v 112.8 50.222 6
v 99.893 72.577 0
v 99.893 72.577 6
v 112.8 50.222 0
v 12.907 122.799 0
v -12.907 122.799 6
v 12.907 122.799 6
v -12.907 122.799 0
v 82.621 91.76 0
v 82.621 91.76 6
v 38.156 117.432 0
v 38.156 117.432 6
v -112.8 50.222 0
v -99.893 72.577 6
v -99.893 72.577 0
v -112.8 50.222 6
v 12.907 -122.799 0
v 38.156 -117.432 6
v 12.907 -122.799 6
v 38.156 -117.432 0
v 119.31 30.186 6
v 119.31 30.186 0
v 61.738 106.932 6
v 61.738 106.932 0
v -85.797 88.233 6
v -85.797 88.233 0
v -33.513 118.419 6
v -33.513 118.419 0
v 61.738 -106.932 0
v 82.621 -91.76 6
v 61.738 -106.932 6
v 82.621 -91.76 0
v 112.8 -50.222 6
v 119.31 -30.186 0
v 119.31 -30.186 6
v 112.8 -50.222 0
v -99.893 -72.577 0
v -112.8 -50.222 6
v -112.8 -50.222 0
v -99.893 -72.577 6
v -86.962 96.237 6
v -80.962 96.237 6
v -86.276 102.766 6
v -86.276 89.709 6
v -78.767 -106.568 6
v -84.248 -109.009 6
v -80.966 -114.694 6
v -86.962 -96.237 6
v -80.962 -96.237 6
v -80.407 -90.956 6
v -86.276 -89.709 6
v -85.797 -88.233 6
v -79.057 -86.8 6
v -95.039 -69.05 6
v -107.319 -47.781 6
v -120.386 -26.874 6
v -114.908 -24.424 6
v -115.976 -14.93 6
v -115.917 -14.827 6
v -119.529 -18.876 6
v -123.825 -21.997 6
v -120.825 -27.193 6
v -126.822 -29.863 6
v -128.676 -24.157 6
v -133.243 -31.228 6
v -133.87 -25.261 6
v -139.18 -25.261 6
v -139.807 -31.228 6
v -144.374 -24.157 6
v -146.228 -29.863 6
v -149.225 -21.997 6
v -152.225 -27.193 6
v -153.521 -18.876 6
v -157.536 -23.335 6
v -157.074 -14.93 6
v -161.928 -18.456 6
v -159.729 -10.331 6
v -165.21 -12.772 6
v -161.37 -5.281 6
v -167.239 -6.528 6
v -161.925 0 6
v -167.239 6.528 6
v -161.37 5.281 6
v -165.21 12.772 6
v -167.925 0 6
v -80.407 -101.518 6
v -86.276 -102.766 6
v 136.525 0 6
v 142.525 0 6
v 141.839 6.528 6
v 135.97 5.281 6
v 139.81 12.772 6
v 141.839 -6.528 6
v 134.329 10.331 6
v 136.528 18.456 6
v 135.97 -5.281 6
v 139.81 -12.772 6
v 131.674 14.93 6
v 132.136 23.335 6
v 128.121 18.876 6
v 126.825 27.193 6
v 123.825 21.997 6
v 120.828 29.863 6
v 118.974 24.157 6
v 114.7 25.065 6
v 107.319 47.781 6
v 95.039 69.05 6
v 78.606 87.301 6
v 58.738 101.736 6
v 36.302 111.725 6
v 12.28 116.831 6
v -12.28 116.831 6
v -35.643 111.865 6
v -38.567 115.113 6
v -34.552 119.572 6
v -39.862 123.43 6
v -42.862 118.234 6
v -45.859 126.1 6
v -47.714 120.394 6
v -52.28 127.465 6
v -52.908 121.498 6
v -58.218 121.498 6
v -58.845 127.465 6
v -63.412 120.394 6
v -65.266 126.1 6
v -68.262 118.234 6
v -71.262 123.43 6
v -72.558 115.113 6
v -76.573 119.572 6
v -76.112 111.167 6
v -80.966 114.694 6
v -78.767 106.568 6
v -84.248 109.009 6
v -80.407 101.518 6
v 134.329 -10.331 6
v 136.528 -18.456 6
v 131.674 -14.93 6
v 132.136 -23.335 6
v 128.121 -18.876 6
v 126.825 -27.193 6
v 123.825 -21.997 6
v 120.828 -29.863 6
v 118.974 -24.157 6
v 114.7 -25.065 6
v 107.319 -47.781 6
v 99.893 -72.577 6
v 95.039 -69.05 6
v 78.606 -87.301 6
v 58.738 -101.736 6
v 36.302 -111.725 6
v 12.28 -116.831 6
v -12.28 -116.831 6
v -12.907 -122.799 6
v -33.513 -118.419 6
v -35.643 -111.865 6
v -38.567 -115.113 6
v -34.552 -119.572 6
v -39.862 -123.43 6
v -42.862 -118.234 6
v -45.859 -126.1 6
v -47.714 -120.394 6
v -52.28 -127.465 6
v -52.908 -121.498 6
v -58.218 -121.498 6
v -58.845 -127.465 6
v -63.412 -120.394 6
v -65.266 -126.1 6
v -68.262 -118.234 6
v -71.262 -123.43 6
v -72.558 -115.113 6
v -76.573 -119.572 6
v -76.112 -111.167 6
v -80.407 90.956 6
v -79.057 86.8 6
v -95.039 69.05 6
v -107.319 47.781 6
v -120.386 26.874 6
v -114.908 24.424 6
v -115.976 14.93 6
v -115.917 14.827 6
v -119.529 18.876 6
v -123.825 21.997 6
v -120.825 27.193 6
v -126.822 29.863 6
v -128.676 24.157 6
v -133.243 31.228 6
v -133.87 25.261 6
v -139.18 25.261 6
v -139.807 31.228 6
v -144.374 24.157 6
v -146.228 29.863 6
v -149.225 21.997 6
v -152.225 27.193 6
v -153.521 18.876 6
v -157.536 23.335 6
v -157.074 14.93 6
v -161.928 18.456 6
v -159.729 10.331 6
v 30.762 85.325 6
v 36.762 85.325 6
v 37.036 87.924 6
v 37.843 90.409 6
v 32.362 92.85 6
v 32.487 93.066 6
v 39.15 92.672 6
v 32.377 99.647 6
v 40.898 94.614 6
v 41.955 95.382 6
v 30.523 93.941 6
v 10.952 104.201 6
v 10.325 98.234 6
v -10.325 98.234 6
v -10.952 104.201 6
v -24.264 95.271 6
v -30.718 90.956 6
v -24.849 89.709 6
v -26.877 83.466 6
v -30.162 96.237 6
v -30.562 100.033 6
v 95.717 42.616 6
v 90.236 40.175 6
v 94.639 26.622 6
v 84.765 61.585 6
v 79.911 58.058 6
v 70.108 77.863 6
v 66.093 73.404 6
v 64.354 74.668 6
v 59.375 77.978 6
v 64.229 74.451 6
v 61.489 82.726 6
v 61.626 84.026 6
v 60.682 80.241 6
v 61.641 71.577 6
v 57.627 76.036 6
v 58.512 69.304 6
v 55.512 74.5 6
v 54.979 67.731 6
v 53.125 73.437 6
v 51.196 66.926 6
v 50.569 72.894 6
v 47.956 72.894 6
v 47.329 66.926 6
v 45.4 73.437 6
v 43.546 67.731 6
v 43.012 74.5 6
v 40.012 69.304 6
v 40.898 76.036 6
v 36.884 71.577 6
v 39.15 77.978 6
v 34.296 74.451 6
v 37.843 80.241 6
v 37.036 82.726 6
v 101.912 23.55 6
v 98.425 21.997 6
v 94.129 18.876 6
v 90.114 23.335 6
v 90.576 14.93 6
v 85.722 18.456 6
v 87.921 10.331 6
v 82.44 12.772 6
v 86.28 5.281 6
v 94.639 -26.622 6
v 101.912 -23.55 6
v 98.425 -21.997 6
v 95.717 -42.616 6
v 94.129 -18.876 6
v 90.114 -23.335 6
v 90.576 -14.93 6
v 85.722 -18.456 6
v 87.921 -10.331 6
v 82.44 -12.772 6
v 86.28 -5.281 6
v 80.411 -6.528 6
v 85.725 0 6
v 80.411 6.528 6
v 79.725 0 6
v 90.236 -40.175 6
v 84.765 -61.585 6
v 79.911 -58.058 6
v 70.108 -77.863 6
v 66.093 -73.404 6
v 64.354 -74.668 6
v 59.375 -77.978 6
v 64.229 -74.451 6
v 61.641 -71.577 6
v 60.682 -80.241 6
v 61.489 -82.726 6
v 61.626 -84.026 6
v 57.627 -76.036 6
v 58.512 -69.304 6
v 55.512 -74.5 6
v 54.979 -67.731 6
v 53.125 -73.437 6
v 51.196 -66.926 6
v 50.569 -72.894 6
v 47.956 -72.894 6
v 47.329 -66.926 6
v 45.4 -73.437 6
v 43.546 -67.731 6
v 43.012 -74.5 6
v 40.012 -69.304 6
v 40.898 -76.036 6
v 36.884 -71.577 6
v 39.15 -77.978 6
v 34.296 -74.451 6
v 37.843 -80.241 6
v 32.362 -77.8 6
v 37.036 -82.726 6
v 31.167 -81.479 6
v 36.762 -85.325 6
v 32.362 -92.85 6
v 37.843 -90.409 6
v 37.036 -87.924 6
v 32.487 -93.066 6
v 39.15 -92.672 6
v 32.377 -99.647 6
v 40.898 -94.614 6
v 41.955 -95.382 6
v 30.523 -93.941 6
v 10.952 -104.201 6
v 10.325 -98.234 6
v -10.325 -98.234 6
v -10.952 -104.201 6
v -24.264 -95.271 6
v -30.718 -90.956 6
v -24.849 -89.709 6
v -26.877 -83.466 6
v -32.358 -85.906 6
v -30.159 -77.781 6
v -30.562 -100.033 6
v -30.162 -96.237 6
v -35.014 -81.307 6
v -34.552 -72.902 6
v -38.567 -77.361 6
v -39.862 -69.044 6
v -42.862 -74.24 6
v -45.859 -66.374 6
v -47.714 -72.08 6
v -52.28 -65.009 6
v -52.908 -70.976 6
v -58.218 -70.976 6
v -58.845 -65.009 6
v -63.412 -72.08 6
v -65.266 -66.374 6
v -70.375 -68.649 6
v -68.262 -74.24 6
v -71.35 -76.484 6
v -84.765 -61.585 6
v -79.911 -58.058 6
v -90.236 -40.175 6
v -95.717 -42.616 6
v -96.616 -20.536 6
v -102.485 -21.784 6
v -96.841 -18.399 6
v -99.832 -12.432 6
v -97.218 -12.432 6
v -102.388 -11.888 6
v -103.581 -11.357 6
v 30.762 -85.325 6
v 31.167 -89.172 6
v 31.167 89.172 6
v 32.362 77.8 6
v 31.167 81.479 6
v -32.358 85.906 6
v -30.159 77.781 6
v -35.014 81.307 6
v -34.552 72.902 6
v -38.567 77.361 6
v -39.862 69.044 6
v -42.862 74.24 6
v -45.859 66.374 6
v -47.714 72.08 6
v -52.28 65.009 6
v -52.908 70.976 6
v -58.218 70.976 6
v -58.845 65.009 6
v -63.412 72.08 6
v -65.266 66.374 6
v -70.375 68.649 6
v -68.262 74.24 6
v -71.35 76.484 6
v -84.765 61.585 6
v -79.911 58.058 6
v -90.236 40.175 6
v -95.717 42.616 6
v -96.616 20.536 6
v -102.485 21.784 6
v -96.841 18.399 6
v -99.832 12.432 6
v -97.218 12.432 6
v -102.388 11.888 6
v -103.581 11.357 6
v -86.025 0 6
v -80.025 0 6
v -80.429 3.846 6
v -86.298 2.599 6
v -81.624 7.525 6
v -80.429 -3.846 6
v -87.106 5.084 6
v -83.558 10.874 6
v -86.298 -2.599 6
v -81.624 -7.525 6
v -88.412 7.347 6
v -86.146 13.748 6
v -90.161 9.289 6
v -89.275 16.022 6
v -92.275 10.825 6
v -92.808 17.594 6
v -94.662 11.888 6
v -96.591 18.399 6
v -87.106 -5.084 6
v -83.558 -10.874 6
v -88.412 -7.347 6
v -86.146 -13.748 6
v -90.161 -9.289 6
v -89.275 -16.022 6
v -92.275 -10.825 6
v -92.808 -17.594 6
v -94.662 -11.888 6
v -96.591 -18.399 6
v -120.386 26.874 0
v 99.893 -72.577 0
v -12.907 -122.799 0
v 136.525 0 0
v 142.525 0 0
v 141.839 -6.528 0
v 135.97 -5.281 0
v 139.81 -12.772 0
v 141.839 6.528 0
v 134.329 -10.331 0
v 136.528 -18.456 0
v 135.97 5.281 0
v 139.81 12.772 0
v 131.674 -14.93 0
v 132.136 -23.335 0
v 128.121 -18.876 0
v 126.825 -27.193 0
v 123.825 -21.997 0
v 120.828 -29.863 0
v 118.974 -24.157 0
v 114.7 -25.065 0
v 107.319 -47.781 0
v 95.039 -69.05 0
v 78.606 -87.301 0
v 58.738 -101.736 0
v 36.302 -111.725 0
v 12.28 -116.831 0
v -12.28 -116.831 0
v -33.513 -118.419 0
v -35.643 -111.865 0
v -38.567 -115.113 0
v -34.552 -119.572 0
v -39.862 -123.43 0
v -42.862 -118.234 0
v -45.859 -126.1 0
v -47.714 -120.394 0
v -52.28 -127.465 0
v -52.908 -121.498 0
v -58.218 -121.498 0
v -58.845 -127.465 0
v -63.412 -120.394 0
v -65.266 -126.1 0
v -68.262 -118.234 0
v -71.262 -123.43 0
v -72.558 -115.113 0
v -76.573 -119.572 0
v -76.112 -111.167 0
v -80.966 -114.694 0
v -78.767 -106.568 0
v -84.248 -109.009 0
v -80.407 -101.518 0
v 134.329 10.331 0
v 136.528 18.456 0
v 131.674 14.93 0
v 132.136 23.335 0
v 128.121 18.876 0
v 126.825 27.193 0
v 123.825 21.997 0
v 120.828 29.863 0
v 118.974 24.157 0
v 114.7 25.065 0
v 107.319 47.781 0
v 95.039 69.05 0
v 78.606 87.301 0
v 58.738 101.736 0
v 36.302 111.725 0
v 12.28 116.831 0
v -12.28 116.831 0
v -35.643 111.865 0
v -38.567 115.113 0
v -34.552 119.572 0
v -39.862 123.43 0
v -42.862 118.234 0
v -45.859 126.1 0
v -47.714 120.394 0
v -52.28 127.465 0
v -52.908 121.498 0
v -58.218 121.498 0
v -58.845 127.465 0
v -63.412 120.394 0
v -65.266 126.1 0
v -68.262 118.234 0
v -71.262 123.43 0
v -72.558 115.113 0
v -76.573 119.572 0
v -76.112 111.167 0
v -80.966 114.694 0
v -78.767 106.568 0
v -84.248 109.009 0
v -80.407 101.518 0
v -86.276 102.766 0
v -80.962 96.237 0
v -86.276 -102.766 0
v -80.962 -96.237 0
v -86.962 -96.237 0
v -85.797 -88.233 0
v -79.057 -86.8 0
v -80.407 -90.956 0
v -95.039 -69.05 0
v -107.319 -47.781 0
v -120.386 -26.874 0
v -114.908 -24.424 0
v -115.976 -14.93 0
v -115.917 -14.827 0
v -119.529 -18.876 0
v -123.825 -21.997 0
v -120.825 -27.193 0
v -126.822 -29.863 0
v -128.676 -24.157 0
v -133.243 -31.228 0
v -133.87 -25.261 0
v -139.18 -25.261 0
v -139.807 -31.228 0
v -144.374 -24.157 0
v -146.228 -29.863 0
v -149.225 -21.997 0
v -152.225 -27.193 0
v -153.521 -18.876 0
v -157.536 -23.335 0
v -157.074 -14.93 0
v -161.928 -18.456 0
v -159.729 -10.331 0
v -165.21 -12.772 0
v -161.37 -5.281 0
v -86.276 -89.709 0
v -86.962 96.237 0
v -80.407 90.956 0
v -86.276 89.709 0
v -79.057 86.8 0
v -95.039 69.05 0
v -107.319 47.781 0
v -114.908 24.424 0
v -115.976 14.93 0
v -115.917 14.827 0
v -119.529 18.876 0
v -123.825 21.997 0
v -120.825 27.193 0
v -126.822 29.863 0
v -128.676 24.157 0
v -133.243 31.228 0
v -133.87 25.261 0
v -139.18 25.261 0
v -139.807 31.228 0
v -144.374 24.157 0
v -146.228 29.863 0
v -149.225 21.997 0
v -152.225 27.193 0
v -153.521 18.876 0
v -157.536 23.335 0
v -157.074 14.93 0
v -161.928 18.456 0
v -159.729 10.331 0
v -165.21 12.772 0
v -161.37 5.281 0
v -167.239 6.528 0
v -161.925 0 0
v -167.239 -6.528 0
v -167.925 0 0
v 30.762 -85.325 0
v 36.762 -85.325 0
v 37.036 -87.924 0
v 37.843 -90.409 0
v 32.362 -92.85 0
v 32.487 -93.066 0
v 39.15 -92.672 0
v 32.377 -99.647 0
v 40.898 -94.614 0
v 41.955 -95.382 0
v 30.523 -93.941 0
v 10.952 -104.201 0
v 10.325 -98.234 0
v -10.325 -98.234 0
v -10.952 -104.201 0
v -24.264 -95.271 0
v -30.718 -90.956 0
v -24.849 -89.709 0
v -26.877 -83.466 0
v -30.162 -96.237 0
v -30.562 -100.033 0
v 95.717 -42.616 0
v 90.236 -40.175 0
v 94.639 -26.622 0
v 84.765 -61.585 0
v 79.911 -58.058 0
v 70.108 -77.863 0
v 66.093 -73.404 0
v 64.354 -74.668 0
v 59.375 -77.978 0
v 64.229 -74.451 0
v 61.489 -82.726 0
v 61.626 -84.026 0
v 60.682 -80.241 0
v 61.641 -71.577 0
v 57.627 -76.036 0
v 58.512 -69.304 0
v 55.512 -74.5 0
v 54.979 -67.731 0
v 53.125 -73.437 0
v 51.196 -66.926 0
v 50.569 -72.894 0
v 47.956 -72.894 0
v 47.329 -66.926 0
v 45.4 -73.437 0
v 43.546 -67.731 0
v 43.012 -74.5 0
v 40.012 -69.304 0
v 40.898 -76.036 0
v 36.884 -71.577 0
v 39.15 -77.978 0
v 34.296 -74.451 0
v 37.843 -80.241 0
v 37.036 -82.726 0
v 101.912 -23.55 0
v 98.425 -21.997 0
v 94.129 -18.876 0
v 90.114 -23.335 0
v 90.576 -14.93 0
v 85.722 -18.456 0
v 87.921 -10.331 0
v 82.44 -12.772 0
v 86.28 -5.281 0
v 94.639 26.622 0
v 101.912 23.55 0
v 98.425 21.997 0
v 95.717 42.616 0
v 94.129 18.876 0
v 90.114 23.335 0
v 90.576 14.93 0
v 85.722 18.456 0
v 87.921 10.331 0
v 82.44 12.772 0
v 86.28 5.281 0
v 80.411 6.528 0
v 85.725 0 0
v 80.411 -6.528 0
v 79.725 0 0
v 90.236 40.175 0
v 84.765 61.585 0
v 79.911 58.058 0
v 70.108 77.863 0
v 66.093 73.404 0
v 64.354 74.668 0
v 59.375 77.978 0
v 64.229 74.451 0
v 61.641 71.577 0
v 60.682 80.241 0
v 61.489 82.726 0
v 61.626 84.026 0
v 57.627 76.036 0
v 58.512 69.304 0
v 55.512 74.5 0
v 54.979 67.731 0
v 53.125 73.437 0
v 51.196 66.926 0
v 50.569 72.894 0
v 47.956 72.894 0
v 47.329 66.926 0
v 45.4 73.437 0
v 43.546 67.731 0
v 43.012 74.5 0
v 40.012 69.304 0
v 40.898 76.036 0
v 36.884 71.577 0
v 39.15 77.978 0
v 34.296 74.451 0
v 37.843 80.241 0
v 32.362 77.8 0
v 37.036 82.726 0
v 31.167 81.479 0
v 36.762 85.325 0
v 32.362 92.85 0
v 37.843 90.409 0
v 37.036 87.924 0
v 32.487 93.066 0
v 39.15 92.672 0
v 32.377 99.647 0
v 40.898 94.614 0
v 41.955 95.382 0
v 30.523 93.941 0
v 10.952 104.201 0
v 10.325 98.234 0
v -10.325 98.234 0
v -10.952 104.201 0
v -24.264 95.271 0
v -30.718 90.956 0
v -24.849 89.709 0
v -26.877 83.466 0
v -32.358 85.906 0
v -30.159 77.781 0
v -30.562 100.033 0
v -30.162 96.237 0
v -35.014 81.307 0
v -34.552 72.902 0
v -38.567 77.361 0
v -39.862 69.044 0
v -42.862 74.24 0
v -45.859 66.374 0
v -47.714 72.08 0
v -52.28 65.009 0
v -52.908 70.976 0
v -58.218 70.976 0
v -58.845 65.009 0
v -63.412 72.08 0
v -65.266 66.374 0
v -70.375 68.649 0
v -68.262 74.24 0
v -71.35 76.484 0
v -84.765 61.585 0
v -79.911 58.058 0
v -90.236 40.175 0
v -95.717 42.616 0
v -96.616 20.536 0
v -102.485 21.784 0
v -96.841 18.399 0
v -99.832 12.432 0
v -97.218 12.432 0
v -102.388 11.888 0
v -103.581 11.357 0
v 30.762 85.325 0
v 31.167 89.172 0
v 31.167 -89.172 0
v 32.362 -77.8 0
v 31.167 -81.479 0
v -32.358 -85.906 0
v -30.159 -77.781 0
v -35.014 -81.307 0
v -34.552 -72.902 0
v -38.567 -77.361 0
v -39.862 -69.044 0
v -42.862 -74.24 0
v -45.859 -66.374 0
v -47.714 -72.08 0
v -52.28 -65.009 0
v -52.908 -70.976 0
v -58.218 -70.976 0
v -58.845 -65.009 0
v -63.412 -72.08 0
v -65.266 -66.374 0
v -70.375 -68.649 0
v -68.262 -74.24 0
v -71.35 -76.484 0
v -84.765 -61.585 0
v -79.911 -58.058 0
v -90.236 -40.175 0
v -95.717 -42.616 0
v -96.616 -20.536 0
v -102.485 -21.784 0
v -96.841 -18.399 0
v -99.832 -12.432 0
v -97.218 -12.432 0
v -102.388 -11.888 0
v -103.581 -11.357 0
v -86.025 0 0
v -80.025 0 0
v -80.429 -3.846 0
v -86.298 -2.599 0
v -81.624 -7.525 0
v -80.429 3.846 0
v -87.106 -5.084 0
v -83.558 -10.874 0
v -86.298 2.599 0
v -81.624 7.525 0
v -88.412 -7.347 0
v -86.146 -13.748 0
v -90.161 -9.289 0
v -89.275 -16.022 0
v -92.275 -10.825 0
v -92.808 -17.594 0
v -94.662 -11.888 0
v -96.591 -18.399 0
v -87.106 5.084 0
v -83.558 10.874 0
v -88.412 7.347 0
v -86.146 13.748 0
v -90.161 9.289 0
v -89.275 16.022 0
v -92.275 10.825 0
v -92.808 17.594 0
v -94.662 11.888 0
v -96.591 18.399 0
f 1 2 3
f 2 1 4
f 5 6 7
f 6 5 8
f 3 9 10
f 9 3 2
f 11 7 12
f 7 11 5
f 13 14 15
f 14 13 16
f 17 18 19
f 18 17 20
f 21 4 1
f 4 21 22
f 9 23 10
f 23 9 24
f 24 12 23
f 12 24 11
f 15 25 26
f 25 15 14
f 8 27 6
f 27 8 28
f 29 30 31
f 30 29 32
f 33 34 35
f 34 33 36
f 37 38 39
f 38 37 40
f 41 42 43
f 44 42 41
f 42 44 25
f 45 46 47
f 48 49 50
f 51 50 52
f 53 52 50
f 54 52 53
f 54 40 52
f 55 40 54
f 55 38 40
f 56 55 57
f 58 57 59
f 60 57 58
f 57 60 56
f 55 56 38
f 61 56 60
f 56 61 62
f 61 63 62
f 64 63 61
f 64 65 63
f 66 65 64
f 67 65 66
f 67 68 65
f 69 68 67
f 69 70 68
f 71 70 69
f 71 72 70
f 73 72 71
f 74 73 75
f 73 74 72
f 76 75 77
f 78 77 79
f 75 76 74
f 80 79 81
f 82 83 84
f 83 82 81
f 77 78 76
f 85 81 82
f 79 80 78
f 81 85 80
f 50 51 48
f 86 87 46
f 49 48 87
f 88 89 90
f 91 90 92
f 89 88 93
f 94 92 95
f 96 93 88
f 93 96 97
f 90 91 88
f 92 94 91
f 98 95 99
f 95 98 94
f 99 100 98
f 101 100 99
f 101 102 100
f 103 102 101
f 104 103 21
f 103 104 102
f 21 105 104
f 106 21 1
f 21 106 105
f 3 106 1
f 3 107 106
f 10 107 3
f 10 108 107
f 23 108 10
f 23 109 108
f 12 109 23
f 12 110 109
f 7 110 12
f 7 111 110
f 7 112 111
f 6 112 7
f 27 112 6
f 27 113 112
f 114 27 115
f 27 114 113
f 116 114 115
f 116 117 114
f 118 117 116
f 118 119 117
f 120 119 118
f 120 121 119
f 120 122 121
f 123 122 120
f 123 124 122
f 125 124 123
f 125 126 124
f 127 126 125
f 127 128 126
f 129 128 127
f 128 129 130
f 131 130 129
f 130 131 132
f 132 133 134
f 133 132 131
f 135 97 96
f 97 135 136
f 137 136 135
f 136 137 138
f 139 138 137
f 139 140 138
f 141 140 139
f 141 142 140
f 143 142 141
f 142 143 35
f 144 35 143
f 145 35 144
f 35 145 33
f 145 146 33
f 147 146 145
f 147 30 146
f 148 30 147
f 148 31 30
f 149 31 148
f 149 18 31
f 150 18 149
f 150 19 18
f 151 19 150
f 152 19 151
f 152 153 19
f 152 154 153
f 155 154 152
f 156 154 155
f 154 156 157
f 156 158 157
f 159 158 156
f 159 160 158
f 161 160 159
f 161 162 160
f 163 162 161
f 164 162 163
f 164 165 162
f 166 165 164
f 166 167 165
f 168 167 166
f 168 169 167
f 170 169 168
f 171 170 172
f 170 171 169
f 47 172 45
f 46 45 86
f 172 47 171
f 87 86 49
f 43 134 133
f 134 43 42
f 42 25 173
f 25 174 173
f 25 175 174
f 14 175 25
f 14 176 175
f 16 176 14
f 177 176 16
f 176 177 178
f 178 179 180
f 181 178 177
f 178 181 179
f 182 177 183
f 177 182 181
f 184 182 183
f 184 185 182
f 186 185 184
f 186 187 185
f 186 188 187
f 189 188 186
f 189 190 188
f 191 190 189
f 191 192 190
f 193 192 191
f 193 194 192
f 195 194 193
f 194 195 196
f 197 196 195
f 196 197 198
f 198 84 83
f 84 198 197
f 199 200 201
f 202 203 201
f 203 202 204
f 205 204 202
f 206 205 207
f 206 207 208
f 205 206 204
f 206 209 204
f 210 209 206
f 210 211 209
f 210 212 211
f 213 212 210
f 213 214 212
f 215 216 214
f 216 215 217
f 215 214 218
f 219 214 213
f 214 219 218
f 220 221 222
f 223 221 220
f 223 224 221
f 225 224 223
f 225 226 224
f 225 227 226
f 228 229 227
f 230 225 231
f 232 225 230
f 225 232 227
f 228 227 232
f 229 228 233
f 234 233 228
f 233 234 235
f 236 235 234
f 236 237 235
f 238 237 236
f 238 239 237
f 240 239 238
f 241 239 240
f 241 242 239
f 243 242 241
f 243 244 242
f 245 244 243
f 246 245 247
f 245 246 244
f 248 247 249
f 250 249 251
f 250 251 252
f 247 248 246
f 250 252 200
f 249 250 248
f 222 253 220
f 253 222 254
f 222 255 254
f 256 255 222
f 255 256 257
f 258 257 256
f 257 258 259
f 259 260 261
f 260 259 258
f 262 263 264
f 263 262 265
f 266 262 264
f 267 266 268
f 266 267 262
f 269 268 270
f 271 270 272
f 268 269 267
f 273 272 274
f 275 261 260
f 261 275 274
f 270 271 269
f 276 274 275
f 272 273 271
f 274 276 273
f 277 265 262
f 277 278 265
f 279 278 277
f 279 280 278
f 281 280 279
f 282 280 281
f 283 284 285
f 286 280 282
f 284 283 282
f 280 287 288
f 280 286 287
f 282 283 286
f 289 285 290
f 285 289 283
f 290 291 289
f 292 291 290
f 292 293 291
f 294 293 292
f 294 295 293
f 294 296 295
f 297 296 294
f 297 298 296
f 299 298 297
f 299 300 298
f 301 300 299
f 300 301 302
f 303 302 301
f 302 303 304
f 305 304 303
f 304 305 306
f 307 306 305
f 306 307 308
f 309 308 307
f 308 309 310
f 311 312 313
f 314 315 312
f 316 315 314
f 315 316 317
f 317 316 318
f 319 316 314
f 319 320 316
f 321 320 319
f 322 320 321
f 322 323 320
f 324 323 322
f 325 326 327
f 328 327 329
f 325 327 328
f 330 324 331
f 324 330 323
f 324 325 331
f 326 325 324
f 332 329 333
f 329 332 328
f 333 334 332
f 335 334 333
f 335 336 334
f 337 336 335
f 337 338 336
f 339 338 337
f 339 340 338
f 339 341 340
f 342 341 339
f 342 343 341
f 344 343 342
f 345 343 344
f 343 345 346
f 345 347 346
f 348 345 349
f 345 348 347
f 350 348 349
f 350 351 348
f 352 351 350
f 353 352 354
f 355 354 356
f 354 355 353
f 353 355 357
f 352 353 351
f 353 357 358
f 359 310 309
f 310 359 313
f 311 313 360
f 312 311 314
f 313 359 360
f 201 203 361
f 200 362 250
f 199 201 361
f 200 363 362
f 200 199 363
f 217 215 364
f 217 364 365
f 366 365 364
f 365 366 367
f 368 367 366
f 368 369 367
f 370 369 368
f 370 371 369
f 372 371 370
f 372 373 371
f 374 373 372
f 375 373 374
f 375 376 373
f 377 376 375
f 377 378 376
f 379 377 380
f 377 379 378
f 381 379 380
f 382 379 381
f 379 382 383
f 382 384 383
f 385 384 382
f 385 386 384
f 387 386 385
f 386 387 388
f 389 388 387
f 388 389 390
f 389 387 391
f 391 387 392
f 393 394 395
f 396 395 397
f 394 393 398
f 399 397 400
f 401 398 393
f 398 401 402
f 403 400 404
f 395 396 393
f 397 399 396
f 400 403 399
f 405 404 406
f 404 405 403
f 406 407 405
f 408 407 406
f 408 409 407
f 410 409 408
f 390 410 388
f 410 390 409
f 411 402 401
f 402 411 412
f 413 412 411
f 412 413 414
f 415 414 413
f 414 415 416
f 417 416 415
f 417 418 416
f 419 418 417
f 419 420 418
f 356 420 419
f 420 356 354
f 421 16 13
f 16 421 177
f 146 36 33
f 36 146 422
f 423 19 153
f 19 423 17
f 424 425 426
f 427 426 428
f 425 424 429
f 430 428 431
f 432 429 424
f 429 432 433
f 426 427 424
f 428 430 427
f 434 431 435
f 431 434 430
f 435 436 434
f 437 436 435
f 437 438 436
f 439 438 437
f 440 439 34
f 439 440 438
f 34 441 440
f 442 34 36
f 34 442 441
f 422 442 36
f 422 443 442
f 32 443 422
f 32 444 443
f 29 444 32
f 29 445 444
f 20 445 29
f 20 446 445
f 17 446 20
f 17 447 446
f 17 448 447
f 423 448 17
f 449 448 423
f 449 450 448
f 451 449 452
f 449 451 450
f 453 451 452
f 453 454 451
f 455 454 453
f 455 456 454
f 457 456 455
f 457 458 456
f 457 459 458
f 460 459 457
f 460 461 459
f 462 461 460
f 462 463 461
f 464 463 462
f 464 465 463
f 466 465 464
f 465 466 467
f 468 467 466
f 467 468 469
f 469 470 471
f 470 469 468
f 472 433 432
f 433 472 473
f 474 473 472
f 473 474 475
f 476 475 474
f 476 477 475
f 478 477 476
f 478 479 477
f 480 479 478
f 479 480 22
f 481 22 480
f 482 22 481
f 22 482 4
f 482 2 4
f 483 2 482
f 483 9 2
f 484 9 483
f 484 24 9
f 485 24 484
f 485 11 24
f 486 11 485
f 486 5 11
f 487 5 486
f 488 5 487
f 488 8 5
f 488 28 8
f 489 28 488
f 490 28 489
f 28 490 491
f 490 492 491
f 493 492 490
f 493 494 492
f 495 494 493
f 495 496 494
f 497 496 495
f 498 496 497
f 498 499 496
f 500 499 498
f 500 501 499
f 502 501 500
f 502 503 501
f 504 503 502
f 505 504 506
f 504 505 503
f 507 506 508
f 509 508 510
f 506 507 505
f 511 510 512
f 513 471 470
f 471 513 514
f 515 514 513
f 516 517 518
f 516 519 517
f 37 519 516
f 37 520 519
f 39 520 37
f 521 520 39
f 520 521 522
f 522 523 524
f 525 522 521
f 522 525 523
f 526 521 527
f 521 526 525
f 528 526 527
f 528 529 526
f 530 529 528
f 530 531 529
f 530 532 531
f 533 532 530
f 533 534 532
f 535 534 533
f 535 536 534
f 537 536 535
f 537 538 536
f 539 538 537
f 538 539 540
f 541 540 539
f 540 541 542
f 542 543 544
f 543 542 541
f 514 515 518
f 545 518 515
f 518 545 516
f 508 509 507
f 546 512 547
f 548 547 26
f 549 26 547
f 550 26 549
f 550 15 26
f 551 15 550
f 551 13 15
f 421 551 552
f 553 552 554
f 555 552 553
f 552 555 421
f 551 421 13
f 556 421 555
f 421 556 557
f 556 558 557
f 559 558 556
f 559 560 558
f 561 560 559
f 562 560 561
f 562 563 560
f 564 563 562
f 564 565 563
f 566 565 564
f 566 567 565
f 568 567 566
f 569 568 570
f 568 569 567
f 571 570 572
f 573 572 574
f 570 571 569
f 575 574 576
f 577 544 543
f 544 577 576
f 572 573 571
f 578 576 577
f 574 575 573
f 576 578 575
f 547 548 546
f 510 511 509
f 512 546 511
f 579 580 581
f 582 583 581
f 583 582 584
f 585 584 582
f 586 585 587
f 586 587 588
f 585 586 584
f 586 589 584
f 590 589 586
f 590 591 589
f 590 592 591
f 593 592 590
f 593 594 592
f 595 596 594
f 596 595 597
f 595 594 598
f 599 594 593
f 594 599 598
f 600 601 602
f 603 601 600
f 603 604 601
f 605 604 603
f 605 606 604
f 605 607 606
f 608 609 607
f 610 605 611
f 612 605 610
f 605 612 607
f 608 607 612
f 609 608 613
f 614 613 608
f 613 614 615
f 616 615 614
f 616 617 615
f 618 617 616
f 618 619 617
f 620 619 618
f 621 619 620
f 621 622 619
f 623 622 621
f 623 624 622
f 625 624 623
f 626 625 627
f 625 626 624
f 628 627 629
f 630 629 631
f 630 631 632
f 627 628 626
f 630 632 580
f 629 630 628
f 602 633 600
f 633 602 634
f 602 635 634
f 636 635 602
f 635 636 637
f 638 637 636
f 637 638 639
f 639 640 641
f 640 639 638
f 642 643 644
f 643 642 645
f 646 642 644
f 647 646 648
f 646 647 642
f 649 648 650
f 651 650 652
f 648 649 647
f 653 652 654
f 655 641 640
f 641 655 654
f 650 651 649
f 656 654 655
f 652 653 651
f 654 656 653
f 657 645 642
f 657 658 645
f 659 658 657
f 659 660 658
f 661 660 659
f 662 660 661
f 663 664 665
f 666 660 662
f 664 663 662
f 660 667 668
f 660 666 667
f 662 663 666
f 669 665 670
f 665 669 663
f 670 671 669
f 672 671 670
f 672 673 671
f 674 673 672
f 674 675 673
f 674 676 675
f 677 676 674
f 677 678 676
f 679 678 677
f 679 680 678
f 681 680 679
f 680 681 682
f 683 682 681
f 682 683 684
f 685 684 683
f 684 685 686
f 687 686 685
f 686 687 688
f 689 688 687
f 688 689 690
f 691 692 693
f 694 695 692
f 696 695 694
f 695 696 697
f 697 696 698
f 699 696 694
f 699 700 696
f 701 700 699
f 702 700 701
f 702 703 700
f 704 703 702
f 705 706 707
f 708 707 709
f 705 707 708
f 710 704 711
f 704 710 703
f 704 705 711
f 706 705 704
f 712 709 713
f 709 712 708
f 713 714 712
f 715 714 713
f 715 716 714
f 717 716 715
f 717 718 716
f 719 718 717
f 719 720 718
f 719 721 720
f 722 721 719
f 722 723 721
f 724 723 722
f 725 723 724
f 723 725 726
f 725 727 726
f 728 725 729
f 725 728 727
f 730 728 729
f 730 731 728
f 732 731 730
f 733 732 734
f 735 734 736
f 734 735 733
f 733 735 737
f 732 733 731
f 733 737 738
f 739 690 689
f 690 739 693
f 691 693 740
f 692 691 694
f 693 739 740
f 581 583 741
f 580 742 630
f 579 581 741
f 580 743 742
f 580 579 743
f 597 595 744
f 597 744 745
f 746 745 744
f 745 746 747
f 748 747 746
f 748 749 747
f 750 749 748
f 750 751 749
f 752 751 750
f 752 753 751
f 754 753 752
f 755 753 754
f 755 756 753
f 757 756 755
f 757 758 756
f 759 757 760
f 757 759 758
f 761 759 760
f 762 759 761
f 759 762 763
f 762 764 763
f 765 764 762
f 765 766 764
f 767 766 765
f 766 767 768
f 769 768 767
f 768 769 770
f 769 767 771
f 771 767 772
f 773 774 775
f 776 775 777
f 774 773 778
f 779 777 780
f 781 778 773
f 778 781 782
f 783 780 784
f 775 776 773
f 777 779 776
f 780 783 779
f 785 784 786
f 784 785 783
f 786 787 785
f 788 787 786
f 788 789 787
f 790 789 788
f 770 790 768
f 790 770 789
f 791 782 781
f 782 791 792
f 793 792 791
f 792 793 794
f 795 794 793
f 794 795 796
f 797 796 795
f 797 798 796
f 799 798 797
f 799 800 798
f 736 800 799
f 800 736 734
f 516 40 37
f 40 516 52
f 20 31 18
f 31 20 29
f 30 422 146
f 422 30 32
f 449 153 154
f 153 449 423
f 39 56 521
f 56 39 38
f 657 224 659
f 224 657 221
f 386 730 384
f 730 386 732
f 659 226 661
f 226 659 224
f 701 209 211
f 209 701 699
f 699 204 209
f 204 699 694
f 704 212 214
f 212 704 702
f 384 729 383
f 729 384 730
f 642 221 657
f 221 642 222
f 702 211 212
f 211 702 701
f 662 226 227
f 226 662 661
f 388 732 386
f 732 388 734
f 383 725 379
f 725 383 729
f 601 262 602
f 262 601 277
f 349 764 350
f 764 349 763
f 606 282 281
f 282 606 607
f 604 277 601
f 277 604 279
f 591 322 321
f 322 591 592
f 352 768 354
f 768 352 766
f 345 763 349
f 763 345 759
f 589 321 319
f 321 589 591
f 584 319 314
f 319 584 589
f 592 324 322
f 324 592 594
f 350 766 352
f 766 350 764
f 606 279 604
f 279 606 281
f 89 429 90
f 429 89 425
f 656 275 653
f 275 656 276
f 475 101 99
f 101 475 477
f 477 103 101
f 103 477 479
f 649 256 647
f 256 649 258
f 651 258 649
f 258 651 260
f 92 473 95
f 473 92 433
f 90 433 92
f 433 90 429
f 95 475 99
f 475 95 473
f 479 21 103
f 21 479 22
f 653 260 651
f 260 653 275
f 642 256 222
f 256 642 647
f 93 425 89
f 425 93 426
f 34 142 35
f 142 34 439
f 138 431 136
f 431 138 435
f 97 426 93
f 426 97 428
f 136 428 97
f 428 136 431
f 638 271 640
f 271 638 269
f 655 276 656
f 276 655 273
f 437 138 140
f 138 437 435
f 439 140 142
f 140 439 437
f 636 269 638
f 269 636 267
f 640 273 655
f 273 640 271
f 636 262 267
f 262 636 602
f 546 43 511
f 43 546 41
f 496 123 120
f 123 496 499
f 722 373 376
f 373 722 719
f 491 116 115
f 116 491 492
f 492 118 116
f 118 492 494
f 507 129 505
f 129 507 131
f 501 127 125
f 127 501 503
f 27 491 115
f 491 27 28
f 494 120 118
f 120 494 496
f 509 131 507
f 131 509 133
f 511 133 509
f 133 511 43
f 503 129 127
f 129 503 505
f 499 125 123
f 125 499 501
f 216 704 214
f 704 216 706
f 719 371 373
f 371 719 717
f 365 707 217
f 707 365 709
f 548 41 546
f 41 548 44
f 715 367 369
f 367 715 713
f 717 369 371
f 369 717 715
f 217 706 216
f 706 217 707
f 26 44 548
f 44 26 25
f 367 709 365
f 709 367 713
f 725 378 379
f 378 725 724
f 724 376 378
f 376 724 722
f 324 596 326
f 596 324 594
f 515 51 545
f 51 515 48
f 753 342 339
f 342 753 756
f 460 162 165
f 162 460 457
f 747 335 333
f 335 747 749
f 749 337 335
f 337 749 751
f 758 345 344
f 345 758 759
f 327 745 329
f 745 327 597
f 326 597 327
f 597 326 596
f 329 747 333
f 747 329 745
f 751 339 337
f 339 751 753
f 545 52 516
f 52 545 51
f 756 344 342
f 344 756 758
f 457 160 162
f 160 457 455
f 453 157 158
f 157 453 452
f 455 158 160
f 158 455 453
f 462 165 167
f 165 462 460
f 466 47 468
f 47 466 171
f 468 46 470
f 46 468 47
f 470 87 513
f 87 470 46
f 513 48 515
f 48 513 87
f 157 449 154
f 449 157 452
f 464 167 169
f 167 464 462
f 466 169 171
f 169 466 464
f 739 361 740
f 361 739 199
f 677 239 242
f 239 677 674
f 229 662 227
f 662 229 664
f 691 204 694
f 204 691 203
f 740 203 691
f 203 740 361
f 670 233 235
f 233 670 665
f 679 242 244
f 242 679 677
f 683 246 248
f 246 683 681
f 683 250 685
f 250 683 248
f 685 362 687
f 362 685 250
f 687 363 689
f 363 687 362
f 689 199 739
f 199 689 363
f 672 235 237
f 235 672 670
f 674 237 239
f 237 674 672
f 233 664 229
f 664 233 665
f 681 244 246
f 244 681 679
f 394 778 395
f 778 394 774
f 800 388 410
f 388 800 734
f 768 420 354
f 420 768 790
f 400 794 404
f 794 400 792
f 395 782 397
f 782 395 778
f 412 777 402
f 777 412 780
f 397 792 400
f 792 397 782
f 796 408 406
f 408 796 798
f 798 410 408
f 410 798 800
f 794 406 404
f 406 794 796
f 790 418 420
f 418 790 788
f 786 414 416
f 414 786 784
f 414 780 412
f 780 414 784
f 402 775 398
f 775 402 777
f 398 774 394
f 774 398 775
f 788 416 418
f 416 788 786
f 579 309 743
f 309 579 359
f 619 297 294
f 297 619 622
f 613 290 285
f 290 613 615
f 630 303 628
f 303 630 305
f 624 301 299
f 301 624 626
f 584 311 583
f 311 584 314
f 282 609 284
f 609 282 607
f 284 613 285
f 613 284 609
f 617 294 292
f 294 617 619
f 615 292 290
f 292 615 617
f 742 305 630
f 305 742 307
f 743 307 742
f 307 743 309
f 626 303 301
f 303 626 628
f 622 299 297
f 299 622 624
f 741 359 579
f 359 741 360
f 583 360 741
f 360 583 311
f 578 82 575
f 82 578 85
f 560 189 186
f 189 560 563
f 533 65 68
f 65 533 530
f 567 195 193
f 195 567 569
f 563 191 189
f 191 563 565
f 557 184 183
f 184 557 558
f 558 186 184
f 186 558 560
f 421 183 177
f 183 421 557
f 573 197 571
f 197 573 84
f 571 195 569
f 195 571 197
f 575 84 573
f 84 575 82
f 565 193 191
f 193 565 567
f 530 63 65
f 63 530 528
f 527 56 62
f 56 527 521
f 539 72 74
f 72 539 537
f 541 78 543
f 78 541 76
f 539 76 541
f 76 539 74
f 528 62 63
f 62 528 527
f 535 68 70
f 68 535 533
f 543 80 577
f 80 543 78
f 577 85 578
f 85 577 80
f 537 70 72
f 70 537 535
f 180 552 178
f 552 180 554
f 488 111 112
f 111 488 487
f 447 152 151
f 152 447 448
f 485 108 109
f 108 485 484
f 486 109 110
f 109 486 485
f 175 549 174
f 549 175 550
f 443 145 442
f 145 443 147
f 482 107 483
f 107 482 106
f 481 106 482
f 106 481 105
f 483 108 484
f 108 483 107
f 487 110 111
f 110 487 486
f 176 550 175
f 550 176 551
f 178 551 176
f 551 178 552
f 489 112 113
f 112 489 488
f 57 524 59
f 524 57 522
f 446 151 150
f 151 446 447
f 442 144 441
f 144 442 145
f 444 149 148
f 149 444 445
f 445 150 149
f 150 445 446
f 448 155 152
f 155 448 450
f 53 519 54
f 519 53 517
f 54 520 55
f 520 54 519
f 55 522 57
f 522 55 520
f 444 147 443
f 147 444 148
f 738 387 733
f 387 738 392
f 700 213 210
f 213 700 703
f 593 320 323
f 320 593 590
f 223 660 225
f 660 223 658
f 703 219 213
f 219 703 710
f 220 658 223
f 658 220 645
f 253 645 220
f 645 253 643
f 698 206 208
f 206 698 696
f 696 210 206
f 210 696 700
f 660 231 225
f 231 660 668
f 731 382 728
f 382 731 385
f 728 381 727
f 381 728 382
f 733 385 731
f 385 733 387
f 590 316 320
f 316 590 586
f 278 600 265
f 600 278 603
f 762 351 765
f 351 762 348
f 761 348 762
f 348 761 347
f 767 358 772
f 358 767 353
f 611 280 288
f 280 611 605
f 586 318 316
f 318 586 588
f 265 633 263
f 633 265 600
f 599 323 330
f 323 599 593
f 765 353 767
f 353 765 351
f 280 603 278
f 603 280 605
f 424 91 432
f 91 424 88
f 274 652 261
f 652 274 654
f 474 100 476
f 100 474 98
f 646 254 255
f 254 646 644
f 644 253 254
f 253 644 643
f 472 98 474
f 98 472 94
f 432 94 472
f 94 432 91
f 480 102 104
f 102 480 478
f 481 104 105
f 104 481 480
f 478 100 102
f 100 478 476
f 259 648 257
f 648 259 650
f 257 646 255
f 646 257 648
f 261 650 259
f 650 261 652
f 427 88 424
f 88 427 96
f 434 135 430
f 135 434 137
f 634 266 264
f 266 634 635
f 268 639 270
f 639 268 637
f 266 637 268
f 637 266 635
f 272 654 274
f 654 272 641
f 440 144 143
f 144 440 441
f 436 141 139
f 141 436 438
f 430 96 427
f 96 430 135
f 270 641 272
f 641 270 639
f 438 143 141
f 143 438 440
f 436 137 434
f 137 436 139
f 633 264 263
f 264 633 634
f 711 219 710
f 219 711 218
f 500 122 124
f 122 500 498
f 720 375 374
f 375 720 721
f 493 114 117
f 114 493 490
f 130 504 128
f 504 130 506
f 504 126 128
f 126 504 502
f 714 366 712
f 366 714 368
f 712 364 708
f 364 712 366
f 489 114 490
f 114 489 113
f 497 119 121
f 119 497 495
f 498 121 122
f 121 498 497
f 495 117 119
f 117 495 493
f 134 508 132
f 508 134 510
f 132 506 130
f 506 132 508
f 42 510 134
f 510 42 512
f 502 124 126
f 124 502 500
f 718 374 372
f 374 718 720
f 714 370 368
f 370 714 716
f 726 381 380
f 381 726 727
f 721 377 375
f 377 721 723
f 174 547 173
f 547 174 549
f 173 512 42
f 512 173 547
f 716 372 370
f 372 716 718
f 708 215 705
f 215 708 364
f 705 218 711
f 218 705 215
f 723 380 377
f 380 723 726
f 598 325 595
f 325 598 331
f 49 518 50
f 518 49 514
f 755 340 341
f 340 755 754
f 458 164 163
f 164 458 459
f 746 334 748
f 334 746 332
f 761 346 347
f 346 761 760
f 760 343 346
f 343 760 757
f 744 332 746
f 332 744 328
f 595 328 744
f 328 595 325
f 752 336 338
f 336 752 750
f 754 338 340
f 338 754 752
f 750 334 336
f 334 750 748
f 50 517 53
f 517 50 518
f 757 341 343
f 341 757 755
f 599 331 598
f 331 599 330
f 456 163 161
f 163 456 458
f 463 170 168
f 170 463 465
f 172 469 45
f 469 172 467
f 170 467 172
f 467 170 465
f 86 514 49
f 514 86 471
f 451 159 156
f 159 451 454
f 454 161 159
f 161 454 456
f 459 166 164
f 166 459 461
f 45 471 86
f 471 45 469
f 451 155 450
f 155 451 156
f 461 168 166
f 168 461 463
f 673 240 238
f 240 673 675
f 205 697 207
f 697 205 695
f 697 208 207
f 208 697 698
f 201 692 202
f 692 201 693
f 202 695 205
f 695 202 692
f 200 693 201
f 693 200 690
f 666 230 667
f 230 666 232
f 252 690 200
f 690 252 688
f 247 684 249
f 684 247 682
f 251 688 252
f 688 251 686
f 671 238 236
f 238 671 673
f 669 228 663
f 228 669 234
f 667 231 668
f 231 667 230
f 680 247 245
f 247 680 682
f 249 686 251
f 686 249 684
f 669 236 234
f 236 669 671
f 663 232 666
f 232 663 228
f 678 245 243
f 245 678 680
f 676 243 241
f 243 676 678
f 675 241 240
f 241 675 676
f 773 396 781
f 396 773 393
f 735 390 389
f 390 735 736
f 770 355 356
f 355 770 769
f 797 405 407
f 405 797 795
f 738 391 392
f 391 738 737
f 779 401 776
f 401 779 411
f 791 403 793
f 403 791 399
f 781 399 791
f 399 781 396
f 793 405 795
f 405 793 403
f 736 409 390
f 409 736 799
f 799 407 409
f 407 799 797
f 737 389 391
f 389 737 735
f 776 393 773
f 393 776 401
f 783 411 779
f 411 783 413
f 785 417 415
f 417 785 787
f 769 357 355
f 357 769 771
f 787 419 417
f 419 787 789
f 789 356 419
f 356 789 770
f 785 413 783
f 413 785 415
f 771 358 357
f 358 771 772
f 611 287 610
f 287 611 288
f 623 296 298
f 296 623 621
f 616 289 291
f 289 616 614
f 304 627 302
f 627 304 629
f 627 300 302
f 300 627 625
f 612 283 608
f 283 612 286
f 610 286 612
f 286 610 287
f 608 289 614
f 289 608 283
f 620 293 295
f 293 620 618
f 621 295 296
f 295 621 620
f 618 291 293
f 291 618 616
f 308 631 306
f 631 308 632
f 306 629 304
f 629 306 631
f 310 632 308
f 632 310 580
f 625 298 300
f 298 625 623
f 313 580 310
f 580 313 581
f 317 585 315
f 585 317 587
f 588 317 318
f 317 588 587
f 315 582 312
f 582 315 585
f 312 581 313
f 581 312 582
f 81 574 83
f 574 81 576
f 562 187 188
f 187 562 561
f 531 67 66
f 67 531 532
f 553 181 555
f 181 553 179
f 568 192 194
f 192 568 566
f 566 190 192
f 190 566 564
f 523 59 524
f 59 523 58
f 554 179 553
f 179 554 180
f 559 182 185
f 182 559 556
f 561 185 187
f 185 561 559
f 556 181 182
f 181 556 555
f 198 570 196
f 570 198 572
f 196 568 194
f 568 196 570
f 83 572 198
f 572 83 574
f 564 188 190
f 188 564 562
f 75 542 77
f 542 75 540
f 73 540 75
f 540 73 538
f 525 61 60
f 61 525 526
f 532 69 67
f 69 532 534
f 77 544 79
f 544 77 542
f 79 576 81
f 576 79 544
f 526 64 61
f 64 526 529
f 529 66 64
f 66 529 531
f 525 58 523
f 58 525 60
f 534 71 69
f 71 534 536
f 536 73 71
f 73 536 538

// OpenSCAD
$fs=0.01;


//This is the normal hole in the middle of the bean bag toss game
//cylinder(h=1, r1=6/2*25.4, r2=6/2*25.4);
difference(){
	cutout(expand=6);
	translate ([0,0,-1]){
		cutout(height=8);
		}
	}
module cutout(height=6, rChannelInner =8.25/2*25.4, rChannelOuter=9.25/2*25.4, rRxBoard=25.4, rTxLed=12.5, expand=0){
	//height: height of extrusion
	//rChannelOuter: outer radius of the routing ring cutout (in.)
	//rChannelInner: inner radius of the routing ring cutout
	//rRxBoard: radius of the RX and uC board cutout
	//rTxLed: radius of the TX LED cutout
	//expand: the desired wall thickness
  channelWidth = (rChannelOuter - rChannelInner) / 2;
	rChannelCenter = (rChannelOuter + rChannelInner)/ 2;
	difference(){
		cylinder(h=height, r=rChannelOuter+expand);
		cylinder(h=height, r=rChannelInner-expand);
		}

	//Receiver cutouts
	for(i=[0:2]){
    translate([rChannelCenter*cos(i*120),rChannelCenter*sin(i*120),0]){
      cylinder(h=height,r=rRxBoard+expand);
			}
		}

	//Emitter cutouts
	for(i=[0:2]){
    translate([(rChannelInner-rTxLed/2)*cos(i*120+60),(rChannelInner-rTxLed/2)*sin(i*120+60),0]){
        cylinder(h=height, r=rTxLed+expand);
				}
		}

	//micro cutout
	translate([-(rChannelCenter+rRxBoard),0,0]){
    cylinder(h=height,r=rRxBoard+expand);
		}
	}
